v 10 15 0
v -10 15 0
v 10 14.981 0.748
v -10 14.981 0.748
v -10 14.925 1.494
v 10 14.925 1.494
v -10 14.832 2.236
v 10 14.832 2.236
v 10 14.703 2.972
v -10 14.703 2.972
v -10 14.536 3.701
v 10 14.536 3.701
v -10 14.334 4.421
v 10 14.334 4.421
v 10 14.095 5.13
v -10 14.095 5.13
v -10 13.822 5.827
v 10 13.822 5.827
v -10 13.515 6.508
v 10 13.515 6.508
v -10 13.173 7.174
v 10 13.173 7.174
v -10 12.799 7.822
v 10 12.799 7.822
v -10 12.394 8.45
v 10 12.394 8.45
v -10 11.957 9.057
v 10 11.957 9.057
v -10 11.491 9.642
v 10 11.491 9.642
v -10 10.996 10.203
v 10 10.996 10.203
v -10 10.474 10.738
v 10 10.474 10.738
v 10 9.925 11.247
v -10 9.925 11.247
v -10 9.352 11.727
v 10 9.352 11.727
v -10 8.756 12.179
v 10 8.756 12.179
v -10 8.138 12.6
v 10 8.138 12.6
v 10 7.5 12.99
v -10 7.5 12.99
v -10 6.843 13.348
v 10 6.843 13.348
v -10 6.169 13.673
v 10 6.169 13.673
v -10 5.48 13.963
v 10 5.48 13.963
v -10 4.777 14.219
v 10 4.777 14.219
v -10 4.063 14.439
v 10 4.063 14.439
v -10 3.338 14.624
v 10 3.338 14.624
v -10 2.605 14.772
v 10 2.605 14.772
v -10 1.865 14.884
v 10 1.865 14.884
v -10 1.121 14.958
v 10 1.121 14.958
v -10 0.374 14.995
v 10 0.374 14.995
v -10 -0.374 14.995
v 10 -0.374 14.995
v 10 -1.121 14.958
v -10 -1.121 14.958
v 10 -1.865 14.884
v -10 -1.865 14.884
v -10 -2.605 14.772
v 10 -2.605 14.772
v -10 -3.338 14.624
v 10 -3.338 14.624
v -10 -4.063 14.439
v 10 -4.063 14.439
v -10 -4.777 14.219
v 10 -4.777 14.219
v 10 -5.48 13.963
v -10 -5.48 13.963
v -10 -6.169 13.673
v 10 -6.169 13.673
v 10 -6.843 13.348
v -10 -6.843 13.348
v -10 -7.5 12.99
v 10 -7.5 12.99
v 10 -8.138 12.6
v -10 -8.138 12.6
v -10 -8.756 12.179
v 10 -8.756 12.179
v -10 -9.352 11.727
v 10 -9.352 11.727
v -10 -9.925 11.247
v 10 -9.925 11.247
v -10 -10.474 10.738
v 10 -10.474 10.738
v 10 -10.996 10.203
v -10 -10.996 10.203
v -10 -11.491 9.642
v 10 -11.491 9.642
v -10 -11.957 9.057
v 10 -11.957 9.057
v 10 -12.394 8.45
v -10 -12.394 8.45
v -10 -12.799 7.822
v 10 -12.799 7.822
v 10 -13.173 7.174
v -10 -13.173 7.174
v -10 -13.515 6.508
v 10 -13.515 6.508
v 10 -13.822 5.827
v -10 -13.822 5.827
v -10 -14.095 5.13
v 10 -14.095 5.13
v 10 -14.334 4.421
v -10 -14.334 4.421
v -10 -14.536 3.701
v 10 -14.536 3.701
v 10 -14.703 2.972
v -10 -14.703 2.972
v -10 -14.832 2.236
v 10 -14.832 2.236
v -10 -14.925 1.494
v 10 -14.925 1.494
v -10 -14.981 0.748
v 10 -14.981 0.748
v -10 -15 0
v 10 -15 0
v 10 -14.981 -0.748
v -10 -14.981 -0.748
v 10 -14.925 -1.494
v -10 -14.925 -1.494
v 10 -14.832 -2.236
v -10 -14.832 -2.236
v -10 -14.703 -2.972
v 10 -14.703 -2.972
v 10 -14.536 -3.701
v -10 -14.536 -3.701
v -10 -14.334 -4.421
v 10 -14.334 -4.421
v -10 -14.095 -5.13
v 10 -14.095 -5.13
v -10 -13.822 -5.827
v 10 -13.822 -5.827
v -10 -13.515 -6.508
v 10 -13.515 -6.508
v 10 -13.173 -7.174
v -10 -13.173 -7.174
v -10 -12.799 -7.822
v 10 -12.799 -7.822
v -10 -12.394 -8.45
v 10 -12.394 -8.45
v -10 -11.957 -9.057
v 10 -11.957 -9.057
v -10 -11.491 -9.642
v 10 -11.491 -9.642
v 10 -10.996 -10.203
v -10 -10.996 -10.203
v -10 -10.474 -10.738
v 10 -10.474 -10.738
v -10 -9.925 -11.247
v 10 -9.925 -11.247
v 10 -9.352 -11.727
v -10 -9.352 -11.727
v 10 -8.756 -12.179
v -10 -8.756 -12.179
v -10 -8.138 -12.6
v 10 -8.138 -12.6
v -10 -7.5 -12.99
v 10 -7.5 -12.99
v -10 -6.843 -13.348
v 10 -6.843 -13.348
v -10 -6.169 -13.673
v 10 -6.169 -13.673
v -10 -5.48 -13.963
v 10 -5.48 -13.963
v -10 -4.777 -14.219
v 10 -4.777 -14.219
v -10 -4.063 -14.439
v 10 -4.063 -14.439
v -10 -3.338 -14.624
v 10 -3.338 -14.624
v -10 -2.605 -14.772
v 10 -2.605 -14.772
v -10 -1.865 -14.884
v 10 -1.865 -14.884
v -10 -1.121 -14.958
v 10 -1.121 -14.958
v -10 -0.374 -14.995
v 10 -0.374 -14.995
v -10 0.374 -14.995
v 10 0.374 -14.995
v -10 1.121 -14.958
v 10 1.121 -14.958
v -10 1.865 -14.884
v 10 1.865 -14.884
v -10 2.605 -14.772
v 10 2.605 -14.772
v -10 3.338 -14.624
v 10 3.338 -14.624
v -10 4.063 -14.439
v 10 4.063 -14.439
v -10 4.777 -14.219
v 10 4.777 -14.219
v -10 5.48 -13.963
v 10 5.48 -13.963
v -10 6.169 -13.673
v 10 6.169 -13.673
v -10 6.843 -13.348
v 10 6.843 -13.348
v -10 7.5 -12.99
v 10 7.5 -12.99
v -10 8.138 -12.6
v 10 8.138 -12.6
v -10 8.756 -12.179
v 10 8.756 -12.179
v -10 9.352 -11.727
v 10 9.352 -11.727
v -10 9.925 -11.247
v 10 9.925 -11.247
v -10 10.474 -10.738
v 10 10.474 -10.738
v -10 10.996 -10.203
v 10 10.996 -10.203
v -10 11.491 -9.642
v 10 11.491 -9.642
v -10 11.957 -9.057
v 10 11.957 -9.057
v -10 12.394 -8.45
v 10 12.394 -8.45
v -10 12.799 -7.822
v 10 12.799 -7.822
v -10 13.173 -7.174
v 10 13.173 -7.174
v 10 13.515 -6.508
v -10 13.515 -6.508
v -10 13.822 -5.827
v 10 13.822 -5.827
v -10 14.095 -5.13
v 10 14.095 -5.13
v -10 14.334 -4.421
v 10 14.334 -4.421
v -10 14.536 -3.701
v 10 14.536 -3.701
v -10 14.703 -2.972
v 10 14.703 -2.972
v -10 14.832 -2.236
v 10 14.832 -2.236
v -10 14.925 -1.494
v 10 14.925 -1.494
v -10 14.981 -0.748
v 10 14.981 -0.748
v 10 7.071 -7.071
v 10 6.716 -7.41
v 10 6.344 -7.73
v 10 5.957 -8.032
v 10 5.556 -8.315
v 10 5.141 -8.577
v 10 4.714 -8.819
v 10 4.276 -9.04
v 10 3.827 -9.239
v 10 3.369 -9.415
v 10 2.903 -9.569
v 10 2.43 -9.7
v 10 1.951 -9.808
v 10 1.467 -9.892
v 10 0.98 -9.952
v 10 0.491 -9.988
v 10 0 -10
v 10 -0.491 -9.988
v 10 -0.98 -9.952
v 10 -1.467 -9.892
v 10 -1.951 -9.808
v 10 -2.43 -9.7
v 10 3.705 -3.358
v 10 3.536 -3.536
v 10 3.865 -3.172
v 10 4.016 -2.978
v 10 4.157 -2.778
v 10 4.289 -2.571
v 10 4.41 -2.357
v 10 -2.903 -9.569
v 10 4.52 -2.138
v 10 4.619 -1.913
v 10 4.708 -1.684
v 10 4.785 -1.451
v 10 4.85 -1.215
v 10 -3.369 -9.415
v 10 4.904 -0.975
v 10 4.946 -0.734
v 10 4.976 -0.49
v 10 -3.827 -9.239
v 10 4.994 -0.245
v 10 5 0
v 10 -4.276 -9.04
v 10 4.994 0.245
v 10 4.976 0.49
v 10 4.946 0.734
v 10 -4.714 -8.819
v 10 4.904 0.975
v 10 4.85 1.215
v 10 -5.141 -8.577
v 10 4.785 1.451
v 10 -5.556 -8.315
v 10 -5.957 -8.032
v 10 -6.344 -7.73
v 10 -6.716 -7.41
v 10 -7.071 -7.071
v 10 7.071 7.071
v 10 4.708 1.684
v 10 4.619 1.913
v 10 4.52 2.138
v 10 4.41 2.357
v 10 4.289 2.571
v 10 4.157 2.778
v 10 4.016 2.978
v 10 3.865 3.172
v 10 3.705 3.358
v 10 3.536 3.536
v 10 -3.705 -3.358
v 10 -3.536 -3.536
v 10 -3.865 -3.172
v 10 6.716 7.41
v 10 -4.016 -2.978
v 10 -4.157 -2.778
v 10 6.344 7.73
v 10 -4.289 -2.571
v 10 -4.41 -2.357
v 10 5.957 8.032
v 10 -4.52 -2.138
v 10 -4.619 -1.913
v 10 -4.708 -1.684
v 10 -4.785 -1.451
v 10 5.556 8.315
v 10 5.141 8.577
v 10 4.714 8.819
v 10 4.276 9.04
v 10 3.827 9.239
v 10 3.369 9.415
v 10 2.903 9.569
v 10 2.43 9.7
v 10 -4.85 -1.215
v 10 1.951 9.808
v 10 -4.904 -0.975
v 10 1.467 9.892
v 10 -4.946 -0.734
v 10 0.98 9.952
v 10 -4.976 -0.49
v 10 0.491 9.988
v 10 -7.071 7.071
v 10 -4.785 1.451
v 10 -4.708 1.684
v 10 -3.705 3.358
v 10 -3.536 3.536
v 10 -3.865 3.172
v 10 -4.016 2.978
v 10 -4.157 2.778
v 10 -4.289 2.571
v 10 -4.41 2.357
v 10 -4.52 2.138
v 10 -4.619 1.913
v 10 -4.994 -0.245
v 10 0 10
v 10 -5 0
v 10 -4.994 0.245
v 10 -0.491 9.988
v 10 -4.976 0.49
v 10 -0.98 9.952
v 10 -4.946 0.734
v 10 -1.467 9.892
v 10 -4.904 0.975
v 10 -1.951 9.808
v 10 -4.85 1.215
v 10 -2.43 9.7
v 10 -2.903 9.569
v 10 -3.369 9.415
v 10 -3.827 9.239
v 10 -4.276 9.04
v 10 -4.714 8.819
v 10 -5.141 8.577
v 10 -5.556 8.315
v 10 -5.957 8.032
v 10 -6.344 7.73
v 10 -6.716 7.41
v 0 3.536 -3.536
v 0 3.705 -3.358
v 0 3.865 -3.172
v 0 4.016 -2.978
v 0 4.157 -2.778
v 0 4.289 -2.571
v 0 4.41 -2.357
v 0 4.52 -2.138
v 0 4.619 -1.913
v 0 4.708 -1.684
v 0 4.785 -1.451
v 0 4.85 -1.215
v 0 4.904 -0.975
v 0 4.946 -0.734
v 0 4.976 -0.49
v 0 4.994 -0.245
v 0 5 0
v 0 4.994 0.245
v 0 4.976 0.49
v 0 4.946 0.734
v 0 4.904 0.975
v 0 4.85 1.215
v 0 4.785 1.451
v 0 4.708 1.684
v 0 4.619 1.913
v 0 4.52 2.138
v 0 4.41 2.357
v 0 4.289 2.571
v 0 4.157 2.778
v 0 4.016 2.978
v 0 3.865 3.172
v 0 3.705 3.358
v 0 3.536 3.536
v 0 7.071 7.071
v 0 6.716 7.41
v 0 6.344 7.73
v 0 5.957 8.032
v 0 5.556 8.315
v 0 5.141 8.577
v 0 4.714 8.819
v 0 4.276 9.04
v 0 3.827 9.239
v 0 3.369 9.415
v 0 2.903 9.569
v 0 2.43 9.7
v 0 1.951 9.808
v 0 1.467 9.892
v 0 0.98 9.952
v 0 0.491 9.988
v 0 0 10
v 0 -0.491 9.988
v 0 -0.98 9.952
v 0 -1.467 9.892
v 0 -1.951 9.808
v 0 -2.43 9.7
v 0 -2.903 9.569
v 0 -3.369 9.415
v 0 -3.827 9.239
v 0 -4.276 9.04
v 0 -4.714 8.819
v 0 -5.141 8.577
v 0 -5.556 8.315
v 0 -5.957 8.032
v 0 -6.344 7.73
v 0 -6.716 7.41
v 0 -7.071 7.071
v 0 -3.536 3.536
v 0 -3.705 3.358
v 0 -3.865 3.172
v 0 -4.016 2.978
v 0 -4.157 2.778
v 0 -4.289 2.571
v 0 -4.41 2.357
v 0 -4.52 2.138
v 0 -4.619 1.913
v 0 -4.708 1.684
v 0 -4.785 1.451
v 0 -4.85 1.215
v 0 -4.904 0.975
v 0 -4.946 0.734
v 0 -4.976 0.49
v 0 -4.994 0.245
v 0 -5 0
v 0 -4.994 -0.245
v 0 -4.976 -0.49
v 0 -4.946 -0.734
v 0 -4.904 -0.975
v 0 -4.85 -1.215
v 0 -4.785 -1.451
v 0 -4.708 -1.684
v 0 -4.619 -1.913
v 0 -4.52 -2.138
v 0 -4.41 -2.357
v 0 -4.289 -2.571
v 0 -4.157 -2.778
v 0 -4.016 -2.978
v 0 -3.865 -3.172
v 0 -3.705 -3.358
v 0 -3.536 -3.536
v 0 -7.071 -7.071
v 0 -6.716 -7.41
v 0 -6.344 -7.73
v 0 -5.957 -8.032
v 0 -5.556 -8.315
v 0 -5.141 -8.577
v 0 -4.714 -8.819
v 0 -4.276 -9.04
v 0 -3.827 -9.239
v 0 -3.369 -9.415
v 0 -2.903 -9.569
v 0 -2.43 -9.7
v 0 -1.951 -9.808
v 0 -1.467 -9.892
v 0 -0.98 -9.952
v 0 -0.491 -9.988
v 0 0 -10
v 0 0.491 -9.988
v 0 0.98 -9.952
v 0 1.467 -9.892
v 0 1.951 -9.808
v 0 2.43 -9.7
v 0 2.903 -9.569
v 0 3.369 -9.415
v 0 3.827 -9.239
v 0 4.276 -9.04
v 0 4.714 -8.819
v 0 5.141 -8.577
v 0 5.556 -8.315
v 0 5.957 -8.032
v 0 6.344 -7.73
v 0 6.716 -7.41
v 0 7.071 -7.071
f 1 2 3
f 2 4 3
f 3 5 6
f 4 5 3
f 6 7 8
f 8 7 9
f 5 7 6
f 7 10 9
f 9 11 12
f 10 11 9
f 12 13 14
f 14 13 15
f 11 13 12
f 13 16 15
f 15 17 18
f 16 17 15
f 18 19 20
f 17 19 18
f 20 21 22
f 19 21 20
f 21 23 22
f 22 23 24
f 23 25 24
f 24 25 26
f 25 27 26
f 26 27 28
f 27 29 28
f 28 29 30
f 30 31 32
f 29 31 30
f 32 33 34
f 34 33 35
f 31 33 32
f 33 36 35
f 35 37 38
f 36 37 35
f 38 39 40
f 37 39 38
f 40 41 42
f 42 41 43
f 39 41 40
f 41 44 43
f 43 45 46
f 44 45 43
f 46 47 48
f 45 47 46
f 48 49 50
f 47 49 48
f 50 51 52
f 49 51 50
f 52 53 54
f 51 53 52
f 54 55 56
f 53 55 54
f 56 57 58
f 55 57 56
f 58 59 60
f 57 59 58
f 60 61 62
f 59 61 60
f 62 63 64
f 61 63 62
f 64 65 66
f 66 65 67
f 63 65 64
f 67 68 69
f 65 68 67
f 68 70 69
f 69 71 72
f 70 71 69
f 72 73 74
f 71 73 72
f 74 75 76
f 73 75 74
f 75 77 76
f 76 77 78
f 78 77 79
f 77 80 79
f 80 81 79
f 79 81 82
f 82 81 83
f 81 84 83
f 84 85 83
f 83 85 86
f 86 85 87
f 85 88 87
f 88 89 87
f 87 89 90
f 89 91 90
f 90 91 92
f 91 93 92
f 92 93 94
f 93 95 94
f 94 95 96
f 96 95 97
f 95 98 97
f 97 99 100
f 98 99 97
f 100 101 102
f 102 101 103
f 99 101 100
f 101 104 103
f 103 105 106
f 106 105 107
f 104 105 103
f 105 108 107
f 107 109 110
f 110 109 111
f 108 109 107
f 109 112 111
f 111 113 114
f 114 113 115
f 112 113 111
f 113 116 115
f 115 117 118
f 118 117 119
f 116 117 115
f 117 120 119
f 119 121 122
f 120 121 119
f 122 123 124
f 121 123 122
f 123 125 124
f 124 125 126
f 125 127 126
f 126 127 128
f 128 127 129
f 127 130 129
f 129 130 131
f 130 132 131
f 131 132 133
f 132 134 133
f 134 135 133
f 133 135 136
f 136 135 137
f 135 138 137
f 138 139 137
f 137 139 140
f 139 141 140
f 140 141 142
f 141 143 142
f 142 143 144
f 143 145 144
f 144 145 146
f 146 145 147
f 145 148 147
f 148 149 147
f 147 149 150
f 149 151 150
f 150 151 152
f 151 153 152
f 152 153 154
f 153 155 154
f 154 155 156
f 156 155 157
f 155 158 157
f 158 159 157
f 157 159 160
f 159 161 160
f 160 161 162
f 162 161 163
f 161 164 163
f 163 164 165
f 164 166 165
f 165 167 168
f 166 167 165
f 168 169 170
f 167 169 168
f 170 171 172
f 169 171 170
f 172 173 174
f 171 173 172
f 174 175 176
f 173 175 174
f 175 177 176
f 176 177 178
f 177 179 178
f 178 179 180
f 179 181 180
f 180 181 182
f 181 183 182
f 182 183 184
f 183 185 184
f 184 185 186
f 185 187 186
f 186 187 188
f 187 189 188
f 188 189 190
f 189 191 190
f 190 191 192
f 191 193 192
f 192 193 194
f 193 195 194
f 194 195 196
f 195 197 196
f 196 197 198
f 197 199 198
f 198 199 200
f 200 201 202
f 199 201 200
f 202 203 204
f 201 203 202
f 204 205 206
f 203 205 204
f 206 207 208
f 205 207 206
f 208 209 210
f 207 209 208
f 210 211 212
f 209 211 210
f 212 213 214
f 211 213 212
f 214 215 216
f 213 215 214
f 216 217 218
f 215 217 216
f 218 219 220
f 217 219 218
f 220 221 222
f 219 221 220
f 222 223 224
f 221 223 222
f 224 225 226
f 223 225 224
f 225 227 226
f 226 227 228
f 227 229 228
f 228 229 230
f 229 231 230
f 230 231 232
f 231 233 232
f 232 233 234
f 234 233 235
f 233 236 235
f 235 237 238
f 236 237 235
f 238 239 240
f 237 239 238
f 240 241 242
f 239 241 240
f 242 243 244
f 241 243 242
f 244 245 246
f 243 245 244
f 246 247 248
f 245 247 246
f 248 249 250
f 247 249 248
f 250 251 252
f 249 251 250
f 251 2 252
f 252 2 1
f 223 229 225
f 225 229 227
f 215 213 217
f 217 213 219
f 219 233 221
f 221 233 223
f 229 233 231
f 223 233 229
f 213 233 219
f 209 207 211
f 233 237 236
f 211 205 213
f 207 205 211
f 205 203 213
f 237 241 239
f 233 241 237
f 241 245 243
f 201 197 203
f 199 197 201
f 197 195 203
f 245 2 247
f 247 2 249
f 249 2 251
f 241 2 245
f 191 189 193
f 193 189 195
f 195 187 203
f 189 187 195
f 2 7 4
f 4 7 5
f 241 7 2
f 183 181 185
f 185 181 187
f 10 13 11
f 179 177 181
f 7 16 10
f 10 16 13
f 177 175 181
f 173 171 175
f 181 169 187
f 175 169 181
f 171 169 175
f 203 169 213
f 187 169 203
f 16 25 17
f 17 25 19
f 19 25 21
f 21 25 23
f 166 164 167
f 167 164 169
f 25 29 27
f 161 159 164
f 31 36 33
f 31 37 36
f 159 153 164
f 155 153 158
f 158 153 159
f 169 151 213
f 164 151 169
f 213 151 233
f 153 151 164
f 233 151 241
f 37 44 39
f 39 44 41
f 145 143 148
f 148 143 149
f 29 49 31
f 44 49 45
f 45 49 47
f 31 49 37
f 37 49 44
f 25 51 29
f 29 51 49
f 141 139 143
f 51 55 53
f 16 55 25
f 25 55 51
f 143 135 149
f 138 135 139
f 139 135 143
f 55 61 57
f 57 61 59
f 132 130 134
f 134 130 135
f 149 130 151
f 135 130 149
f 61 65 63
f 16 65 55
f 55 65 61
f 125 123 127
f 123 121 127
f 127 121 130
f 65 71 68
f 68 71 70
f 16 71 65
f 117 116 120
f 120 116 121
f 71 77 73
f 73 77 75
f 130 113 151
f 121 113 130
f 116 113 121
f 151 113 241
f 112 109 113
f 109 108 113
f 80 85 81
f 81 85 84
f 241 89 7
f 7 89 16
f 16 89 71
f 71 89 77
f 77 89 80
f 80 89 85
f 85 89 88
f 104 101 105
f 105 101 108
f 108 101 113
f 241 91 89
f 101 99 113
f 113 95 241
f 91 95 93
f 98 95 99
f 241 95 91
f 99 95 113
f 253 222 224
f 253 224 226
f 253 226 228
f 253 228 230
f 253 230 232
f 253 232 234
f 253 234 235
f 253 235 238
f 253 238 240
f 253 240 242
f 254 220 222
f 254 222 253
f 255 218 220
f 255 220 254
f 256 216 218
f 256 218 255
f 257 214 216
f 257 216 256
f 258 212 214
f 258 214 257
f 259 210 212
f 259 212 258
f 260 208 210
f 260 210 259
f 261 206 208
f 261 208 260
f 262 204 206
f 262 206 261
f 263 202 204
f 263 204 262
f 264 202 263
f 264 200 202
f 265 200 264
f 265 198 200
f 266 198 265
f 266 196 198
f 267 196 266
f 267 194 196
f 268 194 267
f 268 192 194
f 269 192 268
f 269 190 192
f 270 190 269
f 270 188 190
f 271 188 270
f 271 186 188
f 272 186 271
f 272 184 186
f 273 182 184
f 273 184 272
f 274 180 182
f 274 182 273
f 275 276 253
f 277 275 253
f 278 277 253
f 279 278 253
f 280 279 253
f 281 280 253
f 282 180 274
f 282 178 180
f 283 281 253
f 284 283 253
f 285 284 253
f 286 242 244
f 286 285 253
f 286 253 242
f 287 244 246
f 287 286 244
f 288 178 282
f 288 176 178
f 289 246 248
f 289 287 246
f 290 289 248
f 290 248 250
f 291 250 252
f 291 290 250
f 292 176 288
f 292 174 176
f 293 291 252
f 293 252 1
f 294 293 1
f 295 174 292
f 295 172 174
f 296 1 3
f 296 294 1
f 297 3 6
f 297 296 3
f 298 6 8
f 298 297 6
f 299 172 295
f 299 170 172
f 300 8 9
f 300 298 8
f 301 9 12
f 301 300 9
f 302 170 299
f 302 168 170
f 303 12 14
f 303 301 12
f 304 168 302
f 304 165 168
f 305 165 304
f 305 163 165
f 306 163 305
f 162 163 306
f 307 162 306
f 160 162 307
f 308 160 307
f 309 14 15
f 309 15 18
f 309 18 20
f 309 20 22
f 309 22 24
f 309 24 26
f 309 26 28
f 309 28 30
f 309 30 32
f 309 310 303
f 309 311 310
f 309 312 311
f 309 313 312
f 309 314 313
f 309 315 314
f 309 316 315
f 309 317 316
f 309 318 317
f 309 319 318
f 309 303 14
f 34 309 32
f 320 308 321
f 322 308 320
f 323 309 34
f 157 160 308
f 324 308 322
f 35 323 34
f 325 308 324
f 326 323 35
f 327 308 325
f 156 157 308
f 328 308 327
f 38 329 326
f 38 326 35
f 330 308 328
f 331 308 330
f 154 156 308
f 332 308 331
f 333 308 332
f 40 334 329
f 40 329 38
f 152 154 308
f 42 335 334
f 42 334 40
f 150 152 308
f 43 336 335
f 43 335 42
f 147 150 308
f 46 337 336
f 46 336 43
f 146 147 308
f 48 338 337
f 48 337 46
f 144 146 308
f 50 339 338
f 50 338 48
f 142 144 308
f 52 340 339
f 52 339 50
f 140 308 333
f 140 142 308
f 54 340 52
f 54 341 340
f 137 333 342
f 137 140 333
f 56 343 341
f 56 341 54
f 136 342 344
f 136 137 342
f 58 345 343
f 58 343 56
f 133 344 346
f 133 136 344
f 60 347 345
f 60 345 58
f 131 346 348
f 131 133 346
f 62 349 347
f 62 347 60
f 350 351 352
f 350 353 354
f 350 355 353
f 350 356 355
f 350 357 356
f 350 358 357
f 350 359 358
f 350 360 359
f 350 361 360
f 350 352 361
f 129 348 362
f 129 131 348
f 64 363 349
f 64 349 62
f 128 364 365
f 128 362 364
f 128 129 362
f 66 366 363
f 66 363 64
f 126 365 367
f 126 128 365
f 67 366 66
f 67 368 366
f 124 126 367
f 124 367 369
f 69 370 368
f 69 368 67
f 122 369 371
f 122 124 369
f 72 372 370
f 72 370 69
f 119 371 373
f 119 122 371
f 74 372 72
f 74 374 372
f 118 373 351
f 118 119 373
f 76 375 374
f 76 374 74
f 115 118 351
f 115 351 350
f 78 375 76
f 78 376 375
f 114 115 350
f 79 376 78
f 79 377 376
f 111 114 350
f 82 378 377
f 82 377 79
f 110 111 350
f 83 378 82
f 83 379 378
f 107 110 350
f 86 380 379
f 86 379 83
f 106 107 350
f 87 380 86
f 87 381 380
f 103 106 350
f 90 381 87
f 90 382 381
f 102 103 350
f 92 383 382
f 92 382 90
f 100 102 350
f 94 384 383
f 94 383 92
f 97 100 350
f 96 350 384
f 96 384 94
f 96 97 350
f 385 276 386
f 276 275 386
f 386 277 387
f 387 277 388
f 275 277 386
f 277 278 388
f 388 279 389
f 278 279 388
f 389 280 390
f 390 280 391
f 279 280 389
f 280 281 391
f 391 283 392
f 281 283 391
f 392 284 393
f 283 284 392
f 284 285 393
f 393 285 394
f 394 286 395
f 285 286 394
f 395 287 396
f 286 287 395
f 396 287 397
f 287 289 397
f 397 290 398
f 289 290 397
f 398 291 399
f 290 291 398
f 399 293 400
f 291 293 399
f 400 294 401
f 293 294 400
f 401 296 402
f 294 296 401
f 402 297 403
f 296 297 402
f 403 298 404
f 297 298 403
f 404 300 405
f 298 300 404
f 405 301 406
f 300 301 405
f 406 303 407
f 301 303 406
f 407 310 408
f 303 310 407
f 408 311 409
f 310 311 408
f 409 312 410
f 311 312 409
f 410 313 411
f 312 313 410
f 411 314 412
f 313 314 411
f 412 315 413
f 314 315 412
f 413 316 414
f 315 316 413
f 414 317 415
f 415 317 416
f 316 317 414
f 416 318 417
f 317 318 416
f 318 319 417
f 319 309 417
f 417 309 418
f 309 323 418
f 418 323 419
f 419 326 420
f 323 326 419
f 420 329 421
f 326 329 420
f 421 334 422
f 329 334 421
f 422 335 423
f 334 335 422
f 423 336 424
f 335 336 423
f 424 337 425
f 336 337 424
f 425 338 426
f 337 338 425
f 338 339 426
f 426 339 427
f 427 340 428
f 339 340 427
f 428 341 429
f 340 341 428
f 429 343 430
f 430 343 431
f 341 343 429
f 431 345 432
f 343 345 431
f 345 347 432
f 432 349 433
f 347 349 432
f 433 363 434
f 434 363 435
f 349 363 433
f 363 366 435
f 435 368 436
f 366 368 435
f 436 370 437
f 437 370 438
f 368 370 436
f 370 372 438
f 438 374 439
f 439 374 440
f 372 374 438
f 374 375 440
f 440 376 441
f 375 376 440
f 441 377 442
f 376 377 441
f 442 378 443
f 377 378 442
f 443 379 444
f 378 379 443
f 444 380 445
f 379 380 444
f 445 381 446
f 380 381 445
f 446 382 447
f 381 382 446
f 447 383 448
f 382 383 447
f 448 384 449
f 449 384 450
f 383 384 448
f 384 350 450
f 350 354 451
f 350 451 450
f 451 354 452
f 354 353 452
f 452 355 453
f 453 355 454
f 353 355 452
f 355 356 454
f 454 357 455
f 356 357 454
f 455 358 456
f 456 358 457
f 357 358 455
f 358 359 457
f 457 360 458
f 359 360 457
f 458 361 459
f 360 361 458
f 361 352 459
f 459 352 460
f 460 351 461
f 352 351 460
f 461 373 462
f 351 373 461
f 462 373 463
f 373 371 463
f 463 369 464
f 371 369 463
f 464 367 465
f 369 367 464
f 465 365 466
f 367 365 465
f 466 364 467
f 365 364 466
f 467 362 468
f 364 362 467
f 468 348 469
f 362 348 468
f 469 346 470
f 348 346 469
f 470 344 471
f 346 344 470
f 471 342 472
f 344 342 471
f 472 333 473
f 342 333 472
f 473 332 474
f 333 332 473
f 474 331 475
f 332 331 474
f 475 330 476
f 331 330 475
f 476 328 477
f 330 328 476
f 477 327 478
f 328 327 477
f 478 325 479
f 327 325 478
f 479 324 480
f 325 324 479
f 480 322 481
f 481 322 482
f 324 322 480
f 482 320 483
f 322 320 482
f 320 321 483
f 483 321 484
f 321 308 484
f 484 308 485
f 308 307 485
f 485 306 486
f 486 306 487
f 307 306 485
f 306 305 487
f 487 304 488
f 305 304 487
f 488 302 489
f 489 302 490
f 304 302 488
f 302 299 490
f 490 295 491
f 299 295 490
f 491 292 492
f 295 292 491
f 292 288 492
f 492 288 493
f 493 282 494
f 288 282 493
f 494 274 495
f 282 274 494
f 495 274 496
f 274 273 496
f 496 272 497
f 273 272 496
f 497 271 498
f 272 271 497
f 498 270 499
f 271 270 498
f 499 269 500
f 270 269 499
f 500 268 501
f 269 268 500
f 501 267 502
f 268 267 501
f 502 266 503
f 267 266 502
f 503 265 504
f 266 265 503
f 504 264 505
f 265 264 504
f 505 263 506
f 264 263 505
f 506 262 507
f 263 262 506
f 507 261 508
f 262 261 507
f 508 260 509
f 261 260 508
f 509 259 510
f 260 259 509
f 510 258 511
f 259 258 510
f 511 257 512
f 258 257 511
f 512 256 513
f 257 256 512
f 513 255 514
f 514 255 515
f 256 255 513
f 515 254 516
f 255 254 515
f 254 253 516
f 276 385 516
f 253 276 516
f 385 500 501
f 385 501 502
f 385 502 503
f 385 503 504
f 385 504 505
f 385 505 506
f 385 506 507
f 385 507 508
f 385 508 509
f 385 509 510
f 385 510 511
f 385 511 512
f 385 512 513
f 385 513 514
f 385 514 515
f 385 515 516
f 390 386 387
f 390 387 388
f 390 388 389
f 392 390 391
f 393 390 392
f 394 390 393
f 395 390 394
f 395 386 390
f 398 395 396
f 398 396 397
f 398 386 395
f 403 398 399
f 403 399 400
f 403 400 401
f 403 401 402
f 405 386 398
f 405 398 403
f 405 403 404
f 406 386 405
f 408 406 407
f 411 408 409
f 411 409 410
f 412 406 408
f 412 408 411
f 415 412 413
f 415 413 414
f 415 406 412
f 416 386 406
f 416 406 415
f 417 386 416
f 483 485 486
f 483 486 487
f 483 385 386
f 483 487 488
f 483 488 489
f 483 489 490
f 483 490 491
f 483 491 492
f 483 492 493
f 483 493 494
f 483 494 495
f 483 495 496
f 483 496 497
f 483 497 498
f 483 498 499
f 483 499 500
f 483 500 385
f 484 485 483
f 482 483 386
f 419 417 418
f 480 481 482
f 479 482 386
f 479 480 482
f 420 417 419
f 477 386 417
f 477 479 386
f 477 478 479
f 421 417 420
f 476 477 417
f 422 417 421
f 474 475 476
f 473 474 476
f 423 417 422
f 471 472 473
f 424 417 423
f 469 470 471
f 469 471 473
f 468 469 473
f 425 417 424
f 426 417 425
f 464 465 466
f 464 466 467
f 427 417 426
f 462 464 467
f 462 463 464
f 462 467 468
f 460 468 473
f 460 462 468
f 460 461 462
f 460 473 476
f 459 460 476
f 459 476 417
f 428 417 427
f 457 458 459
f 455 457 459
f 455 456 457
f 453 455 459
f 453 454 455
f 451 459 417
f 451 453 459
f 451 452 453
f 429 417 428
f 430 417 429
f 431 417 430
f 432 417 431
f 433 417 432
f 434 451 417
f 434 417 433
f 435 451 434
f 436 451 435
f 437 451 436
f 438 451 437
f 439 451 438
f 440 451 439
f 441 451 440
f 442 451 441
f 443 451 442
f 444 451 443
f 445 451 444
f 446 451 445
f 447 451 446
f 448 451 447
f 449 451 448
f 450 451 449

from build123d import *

# Parameters (mm, degrees)
SKETCH_R     = 15
PAD_DEPTH    = 10
POCKET_DEPTH = 10


with BuildPart() as part:
    # Sketch → Pad (new body, symmetric)
    with BuildSketch(Plane.YZ):
        Circle(SKETCH_R)
    extrude(amount=PAD_DEPTH, both=True)

    # Sketch001 (on Face3 of Pad) → Pocket (cut)
    with BuildSketch(Plane.YZ.offset(10)):
        with BuildLine():
            Line((3.535534, -3.535534), (7.071068, -7.071068))
            ThreePointArc((-7.071068, -7.071068), (0, -10), (7.071068, -7.071068))
            Line((-3.535534, -3.535534), (-7.071068, -7.071068))
            ThreePointArc((-3.535534, 3.535534), (-5, 0), (-3.535534, -3.535534))
            Line((-3.535534, 3.535534), (-7.071068, 7.071068))
            ThreePointArc((7.071068, 7.071068), (0, 10), (-7.071068, 7.071068))
            Line((3.535534, 3.535534), (7.071068, 7.071068))
            ThreePointArc((3.535534, -3.535534), (5, 0), (3.535534, 3.535534))
        make_face()
    extrude(amount=-POCKET_DEPTH, mode=Mode.SUBTRACT)


solid = part.part
